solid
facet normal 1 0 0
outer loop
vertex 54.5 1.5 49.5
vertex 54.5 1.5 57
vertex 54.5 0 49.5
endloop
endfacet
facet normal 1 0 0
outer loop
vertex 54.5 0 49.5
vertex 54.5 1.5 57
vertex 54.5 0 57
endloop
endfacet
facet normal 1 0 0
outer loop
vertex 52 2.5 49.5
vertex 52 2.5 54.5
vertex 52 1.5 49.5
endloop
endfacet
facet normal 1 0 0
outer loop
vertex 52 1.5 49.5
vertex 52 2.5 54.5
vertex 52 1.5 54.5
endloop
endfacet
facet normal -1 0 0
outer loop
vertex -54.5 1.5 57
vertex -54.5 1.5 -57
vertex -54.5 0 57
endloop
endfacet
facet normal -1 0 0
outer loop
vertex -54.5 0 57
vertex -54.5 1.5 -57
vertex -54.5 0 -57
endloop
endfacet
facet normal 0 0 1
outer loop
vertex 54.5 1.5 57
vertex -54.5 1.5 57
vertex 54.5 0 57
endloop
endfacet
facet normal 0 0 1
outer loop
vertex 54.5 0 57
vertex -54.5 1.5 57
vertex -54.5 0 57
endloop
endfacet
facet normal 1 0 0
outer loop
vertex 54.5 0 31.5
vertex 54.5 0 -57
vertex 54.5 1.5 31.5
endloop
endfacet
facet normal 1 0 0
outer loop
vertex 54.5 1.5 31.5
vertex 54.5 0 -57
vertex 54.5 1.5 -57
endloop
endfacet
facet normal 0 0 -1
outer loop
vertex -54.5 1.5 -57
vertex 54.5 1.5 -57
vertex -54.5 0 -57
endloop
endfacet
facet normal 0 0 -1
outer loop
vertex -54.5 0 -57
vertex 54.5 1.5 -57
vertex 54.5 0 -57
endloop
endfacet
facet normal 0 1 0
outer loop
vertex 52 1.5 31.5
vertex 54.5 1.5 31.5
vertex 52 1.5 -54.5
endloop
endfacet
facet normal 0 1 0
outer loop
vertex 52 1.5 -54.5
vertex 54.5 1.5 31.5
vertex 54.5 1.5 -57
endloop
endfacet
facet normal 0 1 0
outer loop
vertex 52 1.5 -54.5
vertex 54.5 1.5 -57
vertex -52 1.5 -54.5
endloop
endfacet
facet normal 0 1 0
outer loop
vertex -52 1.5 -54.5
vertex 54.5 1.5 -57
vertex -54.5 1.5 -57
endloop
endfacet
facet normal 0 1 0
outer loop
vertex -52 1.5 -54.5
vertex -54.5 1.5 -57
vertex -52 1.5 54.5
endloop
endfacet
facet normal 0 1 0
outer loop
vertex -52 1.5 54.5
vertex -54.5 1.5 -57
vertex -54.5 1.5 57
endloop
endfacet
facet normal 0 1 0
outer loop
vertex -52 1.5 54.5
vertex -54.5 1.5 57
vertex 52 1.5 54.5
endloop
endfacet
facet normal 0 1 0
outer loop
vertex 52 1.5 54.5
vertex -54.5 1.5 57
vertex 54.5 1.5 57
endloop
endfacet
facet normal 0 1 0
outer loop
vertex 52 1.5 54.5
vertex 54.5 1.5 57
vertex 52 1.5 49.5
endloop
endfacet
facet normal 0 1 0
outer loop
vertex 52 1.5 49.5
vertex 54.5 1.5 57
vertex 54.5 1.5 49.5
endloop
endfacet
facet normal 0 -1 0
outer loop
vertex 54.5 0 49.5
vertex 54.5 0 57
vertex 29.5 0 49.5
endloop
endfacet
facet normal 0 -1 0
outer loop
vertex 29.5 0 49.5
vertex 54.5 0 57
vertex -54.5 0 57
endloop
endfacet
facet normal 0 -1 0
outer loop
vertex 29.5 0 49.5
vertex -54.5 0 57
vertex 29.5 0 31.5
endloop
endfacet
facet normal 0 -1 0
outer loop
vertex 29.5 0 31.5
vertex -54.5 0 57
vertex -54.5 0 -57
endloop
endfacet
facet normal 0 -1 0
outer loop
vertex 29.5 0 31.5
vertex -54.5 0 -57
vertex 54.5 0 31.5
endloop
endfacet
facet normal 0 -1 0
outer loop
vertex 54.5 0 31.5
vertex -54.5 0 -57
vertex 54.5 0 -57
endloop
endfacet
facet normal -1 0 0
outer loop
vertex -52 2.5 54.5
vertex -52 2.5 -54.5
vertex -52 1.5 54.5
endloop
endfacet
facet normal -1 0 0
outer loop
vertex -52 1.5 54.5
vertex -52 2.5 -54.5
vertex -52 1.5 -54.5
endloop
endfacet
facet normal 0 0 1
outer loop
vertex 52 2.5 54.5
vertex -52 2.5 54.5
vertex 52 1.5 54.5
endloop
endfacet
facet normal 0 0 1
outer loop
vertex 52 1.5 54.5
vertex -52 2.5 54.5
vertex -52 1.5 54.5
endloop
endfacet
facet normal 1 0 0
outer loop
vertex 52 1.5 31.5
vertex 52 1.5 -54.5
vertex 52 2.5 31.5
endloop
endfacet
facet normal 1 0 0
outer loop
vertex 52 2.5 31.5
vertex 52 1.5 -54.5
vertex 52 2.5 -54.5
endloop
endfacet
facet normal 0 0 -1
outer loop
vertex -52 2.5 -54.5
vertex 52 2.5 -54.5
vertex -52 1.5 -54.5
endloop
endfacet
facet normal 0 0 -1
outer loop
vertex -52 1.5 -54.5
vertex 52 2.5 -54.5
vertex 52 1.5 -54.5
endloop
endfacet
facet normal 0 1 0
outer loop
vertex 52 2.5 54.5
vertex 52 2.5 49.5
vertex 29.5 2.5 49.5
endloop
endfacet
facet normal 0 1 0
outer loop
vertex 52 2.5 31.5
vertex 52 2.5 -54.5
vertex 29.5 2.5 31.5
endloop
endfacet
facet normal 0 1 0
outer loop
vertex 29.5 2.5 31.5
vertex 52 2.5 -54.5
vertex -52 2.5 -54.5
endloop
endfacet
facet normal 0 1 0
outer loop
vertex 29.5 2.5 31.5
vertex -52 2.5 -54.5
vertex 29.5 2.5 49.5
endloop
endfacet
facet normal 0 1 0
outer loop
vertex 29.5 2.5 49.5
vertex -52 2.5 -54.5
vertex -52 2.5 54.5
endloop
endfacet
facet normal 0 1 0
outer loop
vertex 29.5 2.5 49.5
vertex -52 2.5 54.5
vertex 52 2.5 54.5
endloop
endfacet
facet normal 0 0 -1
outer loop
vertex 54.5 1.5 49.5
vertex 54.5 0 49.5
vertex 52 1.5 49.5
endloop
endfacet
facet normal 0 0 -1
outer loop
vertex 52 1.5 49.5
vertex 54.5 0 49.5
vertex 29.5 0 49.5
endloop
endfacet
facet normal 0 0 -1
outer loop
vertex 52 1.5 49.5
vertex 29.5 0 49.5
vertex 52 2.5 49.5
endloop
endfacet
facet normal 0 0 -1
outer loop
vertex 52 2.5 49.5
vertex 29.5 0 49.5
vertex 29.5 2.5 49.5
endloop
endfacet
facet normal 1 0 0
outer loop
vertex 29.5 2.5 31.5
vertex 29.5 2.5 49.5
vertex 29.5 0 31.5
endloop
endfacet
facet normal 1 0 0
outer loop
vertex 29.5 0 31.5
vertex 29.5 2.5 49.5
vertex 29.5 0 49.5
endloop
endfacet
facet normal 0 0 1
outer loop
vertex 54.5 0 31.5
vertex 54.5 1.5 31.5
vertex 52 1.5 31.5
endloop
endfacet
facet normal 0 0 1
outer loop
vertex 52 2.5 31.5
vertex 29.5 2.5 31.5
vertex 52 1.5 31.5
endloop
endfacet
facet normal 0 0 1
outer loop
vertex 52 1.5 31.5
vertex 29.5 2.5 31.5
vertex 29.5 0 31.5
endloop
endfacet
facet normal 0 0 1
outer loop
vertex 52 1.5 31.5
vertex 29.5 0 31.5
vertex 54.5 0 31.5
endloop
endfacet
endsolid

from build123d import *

# Parameters (mm, degrees)
SKETCH2_W           = 109
SKETCH2_H           = 114
BOSS_EXTRUDE1_DEPTH = 1.5
SKETCH3_W           = 104
SKETCH3_H           = 109
BOSS_EXTRUDE2_DEPTH = 1
SKETCH4_W           = 25
SKETCH4_H           = 18
CUT_EXTRUDE1_DEPTH  = 2.5


with BuildPart() as part:
    # Sketch2 → Boss-Extrude1 (new body)
    with BuildSketch(Plane(origin=(0, 0, 0), x_dir=(1, 0, 0), z_dir=(0, 1, 0))):
        Rectangle(SKETCH2_W, SKETCH2_H)
    extrude(amount=BOSS_EXTRUDE1_DEPTH)

    # Sketch3 → Boss-Extrude2 (add)
    with BuildSketch(Plane(origin=(0, 1.5, 0), x_dir=(1, 0, 0), z_dir=(0, 1, 0))):
        Rectangle(SKETCH3_W, SKETCH3_H)
    extrude(amount=BOSS_EXTRUDE2_DEPTH)

    # Sketch4 → Cut-Extrude1 (cut)
    with BuildSketch(Plane(origin=(0, 2.5, 0), x_dir=(1, 0, 0), z_dir=(0, 1, 0))):
        with Locations((42, -40.5)):
            Rectangle(SKETCH4_W, SKETCH4_H)
    extrude(amount=-CUT_EXTRUDE1_DEPTH, mode=Mode.SUBTRACT)


solid = part.part
